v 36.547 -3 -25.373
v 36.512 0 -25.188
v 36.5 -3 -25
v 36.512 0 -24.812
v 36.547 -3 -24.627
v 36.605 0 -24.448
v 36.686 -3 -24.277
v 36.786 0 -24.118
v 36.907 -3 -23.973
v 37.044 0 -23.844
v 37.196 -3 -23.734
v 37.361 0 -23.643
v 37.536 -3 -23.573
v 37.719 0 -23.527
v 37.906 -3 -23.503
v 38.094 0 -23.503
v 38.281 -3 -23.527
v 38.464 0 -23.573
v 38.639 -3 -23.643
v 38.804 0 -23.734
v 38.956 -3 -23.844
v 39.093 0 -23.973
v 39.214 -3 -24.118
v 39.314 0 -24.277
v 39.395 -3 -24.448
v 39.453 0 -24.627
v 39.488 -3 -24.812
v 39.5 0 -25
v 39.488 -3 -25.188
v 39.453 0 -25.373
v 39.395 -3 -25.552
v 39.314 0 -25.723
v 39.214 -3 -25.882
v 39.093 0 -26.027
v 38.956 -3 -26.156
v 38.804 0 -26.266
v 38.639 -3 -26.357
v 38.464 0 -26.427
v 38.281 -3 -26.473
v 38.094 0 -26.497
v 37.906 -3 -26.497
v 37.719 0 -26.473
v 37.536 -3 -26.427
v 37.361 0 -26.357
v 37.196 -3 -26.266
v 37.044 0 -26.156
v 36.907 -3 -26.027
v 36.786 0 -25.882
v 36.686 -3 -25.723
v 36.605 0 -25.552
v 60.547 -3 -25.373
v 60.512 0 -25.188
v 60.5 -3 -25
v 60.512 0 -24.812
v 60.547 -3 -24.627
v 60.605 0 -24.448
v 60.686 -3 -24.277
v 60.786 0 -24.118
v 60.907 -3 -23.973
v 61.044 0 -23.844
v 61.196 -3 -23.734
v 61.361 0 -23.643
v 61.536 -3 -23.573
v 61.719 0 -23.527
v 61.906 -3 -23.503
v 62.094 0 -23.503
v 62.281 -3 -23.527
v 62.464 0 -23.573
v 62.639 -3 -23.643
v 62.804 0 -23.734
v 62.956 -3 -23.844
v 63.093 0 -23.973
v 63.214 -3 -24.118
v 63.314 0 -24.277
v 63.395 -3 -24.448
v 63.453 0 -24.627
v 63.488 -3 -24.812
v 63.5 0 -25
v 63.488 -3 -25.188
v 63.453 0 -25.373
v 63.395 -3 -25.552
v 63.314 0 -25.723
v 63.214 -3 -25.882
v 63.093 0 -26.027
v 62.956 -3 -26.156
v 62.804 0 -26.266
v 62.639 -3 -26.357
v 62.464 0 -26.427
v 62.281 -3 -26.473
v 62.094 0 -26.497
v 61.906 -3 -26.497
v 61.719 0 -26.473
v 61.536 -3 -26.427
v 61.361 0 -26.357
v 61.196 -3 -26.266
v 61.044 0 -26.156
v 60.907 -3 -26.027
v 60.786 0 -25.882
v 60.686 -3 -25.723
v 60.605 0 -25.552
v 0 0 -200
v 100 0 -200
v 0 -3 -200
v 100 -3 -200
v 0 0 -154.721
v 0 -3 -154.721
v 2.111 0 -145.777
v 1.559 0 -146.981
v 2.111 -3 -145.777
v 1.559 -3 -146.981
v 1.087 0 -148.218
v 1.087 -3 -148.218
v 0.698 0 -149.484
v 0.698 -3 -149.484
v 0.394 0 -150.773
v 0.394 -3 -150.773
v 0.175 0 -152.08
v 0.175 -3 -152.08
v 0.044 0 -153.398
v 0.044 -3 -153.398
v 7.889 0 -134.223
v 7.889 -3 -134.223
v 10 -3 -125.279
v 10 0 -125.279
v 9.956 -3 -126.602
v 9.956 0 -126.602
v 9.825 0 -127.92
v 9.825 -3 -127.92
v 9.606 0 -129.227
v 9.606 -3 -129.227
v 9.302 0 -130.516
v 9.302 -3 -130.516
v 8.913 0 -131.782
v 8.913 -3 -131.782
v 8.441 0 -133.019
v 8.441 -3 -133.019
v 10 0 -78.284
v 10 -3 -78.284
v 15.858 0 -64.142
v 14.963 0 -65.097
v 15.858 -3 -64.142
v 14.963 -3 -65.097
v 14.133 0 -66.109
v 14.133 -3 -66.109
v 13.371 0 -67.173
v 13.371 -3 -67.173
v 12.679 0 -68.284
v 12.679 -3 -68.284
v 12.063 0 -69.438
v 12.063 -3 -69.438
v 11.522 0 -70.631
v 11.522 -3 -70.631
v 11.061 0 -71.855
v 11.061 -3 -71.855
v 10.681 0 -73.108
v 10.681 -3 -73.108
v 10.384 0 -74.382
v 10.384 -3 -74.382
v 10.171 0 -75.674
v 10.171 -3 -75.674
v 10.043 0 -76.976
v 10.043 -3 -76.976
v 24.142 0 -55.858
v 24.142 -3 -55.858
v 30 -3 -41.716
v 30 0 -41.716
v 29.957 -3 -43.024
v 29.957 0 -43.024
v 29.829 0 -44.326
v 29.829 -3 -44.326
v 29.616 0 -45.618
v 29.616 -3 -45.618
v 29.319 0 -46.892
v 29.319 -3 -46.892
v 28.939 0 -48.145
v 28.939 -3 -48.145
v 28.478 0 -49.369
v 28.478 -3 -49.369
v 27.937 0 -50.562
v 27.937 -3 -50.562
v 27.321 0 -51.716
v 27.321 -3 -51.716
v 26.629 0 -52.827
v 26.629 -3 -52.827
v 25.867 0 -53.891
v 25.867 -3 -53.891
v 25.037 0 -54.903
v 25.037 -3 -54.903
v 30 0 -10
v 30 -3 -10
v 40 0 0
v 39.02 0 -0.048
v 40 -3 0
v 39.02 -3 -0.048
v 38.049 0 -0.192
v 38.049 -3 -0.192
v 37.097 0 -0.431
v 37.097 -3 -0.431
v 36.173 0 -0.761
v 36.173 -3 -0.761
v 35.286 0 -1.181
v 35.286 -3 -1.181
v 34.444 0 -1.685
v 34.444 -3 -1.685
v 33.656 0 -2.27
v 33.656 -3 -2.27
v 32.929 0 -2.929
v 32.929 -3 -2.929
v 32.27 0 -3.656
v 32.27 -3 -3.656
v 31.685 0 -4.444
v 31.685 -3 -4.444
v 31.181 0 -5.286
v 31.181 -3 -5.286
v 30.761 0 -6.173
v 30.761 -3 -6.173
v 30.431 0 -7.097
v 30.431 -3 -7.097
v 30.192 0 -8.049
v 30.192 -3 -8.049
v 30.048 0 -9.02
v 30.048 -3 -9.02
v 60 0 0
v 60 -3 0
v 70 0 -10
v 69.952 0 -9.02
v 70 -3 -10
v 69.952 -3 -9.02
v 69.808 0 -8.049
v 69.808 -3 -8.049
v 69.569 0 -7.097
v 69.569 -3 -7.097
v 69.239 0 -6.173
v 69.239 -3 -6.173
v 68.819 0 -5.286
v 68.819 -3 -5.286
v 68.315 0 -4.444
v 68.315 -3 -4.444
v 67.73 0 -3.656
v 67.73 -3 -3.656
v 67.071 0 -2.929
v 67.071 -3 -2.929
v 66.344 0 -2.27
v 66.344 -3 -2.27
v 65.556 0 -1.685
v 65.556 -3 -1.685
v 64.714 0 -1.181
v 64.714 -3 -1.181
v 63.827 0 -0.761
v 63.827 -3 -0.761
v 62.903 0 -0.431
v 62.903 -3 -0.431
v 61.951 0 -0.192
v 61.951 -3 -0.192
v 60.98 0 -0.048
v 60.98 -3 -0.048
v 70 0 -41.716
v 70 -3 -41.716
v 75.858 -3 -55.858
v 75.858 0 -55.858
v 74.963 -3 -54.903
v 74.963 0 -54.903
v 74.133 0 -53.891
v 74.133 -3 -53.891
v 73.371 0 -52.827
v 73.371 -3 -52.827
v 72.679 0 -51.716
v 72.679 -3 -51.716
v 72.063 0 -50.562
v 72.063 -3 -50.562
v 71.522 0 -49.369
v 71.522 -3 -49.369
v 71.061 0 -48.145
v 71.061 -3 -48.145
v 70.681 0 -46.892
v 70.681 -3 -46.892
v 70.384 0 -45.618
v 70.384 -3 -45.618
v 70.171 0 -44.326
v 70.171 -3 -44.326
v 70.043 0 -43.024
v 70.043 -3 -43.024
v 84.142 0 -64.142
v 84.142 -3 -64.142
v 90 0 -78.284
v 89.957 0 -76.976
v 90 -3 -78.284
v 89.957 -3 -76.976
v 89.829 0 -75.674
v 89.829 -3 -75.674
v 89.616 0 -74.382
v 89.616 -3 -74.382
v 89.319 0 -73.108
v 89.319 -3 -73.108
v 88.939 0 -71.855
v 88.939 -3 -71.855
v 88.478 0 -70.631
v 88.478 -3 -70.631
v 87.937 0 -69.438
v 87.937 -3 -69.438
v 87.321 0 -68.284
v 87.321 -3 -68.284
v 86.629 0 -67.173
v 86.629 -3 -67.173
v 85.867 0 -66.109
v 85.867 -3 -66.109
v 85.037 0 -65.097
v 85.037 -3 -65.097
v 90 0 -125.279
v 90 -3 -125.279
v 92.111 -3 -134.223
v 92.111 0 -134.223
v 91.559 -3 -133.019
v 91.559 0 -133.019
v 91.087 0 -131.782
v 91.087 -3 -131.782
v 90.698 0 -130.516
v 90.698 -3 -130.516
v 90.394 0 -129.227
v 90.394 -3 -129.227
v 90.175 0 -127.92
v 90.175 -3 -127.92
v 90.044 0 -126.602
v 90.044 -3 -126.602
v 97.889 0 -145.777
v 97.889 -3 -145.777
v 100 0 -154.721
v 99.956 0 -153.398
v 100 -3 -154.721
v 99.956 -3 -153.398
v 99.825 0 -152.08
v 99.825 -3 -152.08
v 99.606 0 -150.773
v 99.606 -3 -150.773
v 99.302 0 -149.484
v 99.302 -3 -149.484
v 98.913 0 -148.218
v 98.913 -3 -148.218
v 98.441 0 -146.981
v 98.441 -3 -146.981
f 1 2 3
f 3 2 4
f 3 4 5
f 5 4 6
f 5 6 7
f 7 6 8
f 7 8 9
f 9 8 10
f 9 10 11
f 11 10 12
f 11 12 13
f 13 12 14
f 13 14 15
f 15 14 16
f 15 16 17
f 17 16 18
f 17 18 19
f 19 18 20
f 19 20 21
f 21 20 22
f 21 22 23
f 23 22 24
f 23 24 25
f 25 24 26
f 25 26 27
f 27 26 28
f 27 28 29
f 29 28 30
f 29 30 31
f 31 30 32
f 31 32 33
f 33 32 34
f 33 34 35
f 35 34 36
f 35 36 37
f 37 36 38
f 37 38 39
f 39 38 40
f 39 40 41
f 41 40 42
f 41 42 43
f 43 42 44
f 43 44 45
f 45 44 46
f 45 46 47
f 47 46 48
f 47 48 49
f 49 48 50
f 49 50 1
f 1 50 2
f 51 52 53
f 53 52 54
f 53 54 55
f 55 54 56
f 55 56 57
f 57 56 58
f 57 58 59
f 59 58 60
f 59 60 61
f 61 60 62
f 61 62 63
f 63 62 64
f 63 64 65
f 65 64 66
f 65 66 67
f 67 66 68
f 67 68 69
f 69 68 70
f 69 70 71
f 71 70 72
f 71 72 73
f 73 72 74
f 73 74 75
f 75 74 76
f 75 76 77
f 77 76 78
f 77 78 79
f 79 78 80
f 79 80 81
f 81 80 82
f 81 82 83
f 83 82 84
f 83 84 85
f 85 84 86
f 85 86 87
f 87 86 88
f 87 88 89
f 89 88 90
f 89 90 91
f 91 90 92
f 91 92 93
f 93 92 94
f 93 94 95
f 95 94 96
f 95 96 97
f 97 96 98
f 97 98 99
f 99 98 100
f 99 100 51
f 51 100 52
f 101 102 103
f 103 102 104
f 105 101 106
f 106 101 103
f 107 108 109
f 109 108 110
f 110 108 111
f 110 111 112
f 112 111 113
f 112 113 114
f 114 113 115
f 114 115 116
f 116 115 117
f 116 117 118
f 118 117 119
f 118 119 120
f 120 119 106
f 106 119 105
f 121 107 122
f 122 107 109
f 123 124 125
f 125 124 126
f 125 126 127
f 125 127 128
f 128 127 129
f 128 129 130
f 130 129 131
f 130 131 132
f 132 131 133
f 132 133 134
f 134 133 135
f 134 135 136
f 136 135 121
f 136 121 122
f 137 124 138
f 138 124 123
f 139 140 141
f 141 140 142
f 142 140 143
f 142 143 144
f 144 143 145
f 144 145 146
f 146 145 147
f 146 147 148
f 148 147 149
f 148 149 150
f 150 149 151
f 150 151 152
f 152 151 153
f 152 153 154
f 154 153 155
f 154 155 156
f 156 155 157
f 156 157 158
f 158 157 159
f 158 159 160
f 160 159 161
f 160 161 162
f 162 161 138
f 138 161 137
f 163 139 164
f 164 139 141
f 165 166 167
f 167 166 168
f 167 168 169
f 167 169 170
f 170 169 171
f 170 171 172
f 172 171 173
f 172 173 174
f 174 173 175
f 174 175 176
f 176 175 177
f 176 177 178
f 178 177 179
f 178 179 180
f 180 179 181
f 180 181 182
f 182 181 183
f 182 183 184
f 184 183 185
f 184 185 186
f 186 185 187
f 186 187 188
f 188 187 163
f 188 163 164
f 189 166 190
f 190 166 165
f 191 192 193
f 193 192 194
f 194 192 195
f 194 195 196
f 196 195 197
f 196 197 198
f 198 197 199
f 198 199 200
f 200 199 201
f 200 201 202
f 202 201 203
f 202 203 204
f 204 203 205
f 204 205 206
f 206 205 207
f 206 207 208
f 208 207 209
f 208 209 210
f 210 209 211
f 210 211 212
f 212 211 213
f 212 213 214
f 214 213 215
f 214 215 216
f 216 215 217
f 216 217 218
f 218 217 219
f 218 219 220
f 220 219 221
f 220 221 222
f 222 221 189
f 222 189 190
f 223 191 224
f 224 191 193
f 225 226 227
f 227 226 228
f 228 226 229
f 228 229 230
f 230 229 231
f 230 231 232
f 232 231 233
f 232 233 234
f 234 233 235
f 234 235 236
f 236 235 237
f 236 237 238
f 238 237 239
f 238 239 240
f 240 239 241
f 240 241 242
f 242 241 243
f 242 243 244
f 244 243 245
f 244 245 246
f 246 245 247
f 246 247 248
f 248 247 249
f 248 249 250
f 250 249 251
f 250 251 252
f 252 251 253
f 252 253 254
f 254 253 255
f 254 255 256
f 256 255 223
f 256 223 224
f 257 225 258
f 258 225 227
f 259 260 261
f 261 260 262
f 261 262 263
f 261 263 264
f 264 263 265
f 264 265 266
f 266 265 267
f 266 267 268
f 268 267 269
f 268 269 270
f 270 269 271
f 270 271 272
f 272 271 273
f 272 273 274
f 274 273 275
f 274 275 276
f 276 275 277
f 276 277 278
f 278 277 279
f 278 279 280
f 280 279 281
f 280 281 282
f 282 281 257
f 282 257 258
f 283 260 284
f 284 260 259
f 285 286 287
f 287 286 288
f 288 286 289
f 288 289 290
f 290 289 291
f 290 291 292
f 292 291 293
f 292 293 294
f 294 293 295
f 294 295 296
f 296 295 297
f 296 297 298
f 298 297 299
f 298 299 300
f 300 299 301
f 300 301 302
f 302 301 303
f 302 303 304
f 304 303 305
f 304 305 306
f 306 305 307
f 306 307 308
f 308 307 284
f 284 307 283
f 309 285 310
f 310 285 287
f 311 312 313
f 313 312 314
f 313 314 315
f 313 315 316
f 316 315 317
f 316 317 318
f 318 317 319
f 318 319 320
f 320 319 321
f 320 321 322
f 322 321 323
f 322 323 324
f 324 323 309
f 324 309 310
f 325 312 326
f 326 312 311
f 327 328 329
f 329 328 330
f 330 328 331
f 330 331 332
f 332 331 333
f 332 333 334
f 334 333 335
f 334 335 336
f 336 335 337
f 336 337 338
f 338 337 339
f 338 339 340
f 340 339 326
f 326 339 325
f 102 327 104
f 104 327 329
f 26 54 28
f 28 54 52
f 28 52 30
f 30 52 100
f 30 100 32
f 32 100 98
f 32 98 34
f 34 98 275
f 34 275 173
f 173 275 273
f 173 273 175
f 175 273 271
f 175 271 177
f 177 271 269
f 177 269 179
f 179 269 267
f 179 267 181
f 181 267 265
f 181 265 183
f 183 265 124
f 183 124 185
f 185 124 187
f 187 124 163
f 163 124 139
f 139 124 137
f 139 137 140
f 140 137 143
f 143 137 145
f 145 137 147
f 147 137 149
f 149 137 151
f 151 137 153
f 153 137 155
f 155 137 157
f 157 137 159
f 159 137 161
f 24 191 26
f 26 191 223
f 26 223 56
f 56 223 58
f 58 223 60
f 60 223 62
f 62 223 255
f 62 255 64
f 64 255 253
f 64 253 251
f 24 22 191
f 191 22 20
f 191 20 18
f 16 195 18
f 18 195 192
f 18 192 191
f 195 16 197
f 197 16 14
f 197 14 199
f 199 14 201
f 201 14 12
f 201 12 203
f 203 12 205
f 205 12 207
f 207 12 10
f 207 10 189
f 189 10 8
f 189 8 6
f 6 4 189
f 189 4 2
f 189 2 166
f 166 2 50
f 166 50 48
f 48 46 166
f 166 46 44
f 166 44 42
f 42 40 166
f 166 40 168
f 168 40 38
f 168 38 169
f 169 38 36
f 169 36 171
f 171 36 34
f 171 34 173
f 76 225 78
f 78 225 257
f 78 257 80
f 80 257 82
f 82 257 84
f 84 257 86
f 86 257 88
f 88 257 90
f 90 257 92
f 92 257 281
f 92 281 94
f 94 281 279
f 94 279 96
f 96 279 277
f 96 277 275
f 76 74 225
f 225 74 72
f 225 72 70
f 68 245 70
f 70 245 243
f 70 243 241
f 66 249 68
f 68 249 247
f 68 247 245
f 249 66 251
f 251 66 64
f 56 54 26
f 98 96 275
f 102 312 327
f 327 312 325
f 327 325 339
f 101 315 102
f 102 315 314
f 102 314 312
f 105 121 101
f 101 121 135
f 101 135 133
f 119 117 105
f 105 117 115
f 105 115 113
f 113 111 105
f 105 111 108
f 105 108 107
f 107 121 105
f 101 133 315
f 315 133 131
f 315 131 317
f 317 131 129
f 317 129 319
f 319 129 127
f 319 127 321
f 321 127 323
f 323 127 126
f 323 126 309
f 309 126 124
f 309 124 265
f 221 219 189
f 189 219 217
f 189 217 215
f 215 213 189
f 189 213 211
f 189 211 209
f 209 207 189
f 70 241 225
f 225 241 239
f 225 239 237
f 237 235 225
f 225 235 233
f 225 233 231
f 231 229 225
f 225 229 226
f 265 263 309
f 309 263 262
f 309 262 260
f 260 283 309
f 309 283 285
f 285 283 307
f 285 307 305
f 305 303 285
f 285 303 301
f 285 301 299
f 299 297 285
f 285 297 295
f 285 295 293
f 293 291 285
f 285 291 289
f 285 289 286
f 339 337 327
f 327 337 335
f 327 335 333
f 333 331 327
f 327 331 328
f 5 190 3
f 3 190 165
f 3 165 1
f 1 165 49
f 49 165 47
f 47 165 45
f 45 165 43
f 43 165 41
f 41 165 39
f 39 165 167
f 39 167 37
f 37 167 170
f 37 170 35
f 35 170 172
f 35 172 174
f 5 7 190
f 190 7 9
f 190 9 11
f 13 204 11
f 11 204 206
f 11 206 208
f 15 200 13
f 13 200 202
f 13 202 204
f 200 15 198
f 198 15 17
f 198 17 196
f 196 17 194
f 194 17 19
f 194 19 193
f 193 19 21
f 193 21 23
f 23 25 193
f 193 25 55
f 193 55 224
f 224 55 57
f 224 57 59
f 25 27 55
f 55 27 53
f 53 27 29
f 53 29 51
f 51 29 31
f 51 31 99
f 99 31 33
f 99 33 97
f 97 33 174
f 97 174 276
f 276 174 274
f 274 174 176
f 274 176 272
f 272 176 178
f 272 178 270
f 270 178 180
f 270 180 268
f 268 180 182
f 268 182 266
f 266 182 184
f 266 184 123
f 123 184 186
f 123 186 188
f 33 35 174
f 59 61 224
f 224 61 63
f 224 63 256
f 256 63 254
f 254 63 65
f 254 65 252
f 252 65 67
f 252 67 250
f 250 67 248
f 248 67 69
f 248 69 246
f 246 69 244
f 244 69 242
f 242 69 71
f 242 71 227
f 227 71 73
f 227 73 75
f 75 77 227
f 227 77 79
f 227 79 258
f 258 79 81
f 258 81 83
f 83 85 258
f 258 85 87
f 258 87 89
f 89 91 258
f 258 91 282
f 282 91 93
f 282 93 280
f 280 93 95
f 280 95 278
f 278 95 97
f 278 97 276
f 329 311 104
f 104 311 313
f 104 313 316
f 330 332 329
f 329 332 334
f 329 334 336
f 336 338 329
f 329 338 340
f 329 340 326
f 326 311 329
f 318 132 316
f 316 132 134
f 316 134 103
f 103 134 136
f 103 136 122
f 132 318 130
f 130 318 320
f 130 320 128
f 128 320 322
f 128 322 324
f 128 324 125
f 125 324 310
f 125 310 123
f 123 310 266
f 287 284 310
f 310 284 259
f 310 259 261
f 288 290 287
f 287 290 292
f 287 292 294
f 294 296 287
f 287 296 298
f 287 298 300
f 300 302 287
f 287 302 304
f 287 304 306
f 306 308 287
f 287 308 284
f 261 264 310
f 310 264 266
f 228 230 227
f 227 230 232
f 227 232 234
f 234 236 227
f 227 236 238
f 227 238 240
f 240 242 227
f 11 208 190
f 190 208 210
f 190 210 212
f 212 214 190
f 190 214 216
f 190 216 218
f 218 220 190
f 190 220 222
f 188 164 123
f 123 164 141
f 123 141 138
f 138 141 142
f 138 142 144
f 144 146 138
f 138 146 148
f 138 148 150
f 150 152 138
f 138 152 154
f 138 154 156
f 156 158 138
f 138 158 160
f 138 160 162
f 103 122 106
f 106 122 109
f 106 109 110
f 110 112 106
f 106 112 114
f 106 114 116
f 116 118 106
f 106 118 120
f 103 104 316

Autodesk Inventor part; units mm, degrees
ref_plane "YZ Plane" through (0, 0, 0) normal (1, 0, 0) x (0, 1, 0)
ref_plane "XZ Plane" through (0, 0, 0) normal (0, 1, 0) x (-1, 0, 0)
sketch "Sketch1" plane through (0, 0, 0) normal (0, 1, 0) x (-1, 0, 0)
  line L0 (0, -154.7214) -> (0, -200)
  line L1 (0, -200) -> (-100, -200)
  line L2 (-100, -200) -> (-100, -154.7214)
  line L3 (-60, 0) -> (-40, 0)
  line L4 (-2.1115, -145.7771) -> (-7.8885, -134.2229)
  line L5 (-10, -125.2786) -> (-10, -78.2843)
  line L6 (-15.8579, -64.1421) -> (-24.1421, -55.8579)
  line L7 (-30, -41.7157) -> (-30, -10)
  line L8 (-70, -10) -> (-70, -41.7157)
  line L9 (-75.8579, -55.8579) -> (-84.1421, -64.1421)
  line L10 (-90, -78.2843) -> (-90, -125.2786)
  line L11 (-92.1115, -134.2229) -> (-97.8885, -145.7771)
  arc A0 (-30, -41.7157) -> (-24.1421, -55.8579) centre (-10, -41.7157) ccw
  arc A1 (-75.8579, -55.8579) -> (-70, -41.7157) centre (-90, -41.7157) ccw
  arc A2 (-84.1421, -64.1421) -> (-90, -78.2843) centre (-70, -78.2843) ccw
  arc A3 (-10, -78.2843) -> (-15.8579, -64.1421) centre (-30, -78.2843) ccw
  arc A4 (-10, -125.2786) -> (-7.8885, -134.2229) centre (10, -125.2786) ccw
  arc A5 (-92.1115, -134.2229) -> (-90, -125.2786) centre (-110, -125.2786) ccw
  arc A6 (-97.8885, -145.7771) -> (-100, -154.7214) centre (-80, -154.7214) ccw
  arc A7 (0, -154.7214) -> (-2.1115, -145.7771) centre (-20, -154.7214) ccw
  arc A8 (-30, -10) -> (-40, 0) centre (-40, -10) ccw
  arc A9 (-60, 0) -> (-70, -10) centre (-60, -10) ccw
  point P0 (0, 0)
  point P1 (-100, 0)
  point P2 (0, -150)
  point P3 (-10, -130)
  point P4 (-10, -70)
  point P5 (-30, -50)
  point P6 (-30, 0)
  point P7 (-70, 0)
  point P8 (-70, -50)
  point P9 (-90, -70)
  point P10 (-90, -130)
  point P11 (-100, -150)
  point P12 (0, 0)
  dimension "d23" = 50
  dimension "d24" = 60
  dimension "d25" = 60
  dimension "d26" = 50
  dimension "d27" = 50
  dimension "d28" = 50
  dimension "d29" = 20
  dimension "d30" = 20
  dimension "d31" = 40
  dimension "d32" = 100
  dimension "d34" = 10
  dimension "d35" = 10
  dimension "d36" = 20
  dimension "d37" = 200
  dimension "d38" = 20
  dimension "d39" = 10
extrude "Extrusion2" add sketch "Sketch1" against normal blind 3
ref_plane "Work Plane1" through (0, 0, -25) normal (0, 0, 1) x (1, 0, 0)
sketch "Sketch8" plane through (0, 0, 0) normal (0, 1, 0) x (1, 0, 0)
  line L0 (70, 10) -> (70, 41.7157) projected
  line L1 (30, 41.7157) -> (30, 10) projected
  line L2 (40, 0) -> (60, 0) projected
  point P0 (0, 0)
  point P1 (38, 25)
  point P2 (62, 25)
  dimension "d117" = 8
  dimension "d118" = 8
  dimension "d119" = 25
  dimension "d120" = 25
hole "Hole2" at (38, 0, -25) at (62, 0, -25) direction (0, -1, 0) diameter 3 end through all
thread "Thread1" size "M3x0.5" class "6H" standard "ANSI Metric M Profile" length 3
thread "Thread2" size "M3x0.5" class "6H" standard "ANSI Metric M Profile" full length
properties part number "base_plate" material "Acrylic, Clear"
